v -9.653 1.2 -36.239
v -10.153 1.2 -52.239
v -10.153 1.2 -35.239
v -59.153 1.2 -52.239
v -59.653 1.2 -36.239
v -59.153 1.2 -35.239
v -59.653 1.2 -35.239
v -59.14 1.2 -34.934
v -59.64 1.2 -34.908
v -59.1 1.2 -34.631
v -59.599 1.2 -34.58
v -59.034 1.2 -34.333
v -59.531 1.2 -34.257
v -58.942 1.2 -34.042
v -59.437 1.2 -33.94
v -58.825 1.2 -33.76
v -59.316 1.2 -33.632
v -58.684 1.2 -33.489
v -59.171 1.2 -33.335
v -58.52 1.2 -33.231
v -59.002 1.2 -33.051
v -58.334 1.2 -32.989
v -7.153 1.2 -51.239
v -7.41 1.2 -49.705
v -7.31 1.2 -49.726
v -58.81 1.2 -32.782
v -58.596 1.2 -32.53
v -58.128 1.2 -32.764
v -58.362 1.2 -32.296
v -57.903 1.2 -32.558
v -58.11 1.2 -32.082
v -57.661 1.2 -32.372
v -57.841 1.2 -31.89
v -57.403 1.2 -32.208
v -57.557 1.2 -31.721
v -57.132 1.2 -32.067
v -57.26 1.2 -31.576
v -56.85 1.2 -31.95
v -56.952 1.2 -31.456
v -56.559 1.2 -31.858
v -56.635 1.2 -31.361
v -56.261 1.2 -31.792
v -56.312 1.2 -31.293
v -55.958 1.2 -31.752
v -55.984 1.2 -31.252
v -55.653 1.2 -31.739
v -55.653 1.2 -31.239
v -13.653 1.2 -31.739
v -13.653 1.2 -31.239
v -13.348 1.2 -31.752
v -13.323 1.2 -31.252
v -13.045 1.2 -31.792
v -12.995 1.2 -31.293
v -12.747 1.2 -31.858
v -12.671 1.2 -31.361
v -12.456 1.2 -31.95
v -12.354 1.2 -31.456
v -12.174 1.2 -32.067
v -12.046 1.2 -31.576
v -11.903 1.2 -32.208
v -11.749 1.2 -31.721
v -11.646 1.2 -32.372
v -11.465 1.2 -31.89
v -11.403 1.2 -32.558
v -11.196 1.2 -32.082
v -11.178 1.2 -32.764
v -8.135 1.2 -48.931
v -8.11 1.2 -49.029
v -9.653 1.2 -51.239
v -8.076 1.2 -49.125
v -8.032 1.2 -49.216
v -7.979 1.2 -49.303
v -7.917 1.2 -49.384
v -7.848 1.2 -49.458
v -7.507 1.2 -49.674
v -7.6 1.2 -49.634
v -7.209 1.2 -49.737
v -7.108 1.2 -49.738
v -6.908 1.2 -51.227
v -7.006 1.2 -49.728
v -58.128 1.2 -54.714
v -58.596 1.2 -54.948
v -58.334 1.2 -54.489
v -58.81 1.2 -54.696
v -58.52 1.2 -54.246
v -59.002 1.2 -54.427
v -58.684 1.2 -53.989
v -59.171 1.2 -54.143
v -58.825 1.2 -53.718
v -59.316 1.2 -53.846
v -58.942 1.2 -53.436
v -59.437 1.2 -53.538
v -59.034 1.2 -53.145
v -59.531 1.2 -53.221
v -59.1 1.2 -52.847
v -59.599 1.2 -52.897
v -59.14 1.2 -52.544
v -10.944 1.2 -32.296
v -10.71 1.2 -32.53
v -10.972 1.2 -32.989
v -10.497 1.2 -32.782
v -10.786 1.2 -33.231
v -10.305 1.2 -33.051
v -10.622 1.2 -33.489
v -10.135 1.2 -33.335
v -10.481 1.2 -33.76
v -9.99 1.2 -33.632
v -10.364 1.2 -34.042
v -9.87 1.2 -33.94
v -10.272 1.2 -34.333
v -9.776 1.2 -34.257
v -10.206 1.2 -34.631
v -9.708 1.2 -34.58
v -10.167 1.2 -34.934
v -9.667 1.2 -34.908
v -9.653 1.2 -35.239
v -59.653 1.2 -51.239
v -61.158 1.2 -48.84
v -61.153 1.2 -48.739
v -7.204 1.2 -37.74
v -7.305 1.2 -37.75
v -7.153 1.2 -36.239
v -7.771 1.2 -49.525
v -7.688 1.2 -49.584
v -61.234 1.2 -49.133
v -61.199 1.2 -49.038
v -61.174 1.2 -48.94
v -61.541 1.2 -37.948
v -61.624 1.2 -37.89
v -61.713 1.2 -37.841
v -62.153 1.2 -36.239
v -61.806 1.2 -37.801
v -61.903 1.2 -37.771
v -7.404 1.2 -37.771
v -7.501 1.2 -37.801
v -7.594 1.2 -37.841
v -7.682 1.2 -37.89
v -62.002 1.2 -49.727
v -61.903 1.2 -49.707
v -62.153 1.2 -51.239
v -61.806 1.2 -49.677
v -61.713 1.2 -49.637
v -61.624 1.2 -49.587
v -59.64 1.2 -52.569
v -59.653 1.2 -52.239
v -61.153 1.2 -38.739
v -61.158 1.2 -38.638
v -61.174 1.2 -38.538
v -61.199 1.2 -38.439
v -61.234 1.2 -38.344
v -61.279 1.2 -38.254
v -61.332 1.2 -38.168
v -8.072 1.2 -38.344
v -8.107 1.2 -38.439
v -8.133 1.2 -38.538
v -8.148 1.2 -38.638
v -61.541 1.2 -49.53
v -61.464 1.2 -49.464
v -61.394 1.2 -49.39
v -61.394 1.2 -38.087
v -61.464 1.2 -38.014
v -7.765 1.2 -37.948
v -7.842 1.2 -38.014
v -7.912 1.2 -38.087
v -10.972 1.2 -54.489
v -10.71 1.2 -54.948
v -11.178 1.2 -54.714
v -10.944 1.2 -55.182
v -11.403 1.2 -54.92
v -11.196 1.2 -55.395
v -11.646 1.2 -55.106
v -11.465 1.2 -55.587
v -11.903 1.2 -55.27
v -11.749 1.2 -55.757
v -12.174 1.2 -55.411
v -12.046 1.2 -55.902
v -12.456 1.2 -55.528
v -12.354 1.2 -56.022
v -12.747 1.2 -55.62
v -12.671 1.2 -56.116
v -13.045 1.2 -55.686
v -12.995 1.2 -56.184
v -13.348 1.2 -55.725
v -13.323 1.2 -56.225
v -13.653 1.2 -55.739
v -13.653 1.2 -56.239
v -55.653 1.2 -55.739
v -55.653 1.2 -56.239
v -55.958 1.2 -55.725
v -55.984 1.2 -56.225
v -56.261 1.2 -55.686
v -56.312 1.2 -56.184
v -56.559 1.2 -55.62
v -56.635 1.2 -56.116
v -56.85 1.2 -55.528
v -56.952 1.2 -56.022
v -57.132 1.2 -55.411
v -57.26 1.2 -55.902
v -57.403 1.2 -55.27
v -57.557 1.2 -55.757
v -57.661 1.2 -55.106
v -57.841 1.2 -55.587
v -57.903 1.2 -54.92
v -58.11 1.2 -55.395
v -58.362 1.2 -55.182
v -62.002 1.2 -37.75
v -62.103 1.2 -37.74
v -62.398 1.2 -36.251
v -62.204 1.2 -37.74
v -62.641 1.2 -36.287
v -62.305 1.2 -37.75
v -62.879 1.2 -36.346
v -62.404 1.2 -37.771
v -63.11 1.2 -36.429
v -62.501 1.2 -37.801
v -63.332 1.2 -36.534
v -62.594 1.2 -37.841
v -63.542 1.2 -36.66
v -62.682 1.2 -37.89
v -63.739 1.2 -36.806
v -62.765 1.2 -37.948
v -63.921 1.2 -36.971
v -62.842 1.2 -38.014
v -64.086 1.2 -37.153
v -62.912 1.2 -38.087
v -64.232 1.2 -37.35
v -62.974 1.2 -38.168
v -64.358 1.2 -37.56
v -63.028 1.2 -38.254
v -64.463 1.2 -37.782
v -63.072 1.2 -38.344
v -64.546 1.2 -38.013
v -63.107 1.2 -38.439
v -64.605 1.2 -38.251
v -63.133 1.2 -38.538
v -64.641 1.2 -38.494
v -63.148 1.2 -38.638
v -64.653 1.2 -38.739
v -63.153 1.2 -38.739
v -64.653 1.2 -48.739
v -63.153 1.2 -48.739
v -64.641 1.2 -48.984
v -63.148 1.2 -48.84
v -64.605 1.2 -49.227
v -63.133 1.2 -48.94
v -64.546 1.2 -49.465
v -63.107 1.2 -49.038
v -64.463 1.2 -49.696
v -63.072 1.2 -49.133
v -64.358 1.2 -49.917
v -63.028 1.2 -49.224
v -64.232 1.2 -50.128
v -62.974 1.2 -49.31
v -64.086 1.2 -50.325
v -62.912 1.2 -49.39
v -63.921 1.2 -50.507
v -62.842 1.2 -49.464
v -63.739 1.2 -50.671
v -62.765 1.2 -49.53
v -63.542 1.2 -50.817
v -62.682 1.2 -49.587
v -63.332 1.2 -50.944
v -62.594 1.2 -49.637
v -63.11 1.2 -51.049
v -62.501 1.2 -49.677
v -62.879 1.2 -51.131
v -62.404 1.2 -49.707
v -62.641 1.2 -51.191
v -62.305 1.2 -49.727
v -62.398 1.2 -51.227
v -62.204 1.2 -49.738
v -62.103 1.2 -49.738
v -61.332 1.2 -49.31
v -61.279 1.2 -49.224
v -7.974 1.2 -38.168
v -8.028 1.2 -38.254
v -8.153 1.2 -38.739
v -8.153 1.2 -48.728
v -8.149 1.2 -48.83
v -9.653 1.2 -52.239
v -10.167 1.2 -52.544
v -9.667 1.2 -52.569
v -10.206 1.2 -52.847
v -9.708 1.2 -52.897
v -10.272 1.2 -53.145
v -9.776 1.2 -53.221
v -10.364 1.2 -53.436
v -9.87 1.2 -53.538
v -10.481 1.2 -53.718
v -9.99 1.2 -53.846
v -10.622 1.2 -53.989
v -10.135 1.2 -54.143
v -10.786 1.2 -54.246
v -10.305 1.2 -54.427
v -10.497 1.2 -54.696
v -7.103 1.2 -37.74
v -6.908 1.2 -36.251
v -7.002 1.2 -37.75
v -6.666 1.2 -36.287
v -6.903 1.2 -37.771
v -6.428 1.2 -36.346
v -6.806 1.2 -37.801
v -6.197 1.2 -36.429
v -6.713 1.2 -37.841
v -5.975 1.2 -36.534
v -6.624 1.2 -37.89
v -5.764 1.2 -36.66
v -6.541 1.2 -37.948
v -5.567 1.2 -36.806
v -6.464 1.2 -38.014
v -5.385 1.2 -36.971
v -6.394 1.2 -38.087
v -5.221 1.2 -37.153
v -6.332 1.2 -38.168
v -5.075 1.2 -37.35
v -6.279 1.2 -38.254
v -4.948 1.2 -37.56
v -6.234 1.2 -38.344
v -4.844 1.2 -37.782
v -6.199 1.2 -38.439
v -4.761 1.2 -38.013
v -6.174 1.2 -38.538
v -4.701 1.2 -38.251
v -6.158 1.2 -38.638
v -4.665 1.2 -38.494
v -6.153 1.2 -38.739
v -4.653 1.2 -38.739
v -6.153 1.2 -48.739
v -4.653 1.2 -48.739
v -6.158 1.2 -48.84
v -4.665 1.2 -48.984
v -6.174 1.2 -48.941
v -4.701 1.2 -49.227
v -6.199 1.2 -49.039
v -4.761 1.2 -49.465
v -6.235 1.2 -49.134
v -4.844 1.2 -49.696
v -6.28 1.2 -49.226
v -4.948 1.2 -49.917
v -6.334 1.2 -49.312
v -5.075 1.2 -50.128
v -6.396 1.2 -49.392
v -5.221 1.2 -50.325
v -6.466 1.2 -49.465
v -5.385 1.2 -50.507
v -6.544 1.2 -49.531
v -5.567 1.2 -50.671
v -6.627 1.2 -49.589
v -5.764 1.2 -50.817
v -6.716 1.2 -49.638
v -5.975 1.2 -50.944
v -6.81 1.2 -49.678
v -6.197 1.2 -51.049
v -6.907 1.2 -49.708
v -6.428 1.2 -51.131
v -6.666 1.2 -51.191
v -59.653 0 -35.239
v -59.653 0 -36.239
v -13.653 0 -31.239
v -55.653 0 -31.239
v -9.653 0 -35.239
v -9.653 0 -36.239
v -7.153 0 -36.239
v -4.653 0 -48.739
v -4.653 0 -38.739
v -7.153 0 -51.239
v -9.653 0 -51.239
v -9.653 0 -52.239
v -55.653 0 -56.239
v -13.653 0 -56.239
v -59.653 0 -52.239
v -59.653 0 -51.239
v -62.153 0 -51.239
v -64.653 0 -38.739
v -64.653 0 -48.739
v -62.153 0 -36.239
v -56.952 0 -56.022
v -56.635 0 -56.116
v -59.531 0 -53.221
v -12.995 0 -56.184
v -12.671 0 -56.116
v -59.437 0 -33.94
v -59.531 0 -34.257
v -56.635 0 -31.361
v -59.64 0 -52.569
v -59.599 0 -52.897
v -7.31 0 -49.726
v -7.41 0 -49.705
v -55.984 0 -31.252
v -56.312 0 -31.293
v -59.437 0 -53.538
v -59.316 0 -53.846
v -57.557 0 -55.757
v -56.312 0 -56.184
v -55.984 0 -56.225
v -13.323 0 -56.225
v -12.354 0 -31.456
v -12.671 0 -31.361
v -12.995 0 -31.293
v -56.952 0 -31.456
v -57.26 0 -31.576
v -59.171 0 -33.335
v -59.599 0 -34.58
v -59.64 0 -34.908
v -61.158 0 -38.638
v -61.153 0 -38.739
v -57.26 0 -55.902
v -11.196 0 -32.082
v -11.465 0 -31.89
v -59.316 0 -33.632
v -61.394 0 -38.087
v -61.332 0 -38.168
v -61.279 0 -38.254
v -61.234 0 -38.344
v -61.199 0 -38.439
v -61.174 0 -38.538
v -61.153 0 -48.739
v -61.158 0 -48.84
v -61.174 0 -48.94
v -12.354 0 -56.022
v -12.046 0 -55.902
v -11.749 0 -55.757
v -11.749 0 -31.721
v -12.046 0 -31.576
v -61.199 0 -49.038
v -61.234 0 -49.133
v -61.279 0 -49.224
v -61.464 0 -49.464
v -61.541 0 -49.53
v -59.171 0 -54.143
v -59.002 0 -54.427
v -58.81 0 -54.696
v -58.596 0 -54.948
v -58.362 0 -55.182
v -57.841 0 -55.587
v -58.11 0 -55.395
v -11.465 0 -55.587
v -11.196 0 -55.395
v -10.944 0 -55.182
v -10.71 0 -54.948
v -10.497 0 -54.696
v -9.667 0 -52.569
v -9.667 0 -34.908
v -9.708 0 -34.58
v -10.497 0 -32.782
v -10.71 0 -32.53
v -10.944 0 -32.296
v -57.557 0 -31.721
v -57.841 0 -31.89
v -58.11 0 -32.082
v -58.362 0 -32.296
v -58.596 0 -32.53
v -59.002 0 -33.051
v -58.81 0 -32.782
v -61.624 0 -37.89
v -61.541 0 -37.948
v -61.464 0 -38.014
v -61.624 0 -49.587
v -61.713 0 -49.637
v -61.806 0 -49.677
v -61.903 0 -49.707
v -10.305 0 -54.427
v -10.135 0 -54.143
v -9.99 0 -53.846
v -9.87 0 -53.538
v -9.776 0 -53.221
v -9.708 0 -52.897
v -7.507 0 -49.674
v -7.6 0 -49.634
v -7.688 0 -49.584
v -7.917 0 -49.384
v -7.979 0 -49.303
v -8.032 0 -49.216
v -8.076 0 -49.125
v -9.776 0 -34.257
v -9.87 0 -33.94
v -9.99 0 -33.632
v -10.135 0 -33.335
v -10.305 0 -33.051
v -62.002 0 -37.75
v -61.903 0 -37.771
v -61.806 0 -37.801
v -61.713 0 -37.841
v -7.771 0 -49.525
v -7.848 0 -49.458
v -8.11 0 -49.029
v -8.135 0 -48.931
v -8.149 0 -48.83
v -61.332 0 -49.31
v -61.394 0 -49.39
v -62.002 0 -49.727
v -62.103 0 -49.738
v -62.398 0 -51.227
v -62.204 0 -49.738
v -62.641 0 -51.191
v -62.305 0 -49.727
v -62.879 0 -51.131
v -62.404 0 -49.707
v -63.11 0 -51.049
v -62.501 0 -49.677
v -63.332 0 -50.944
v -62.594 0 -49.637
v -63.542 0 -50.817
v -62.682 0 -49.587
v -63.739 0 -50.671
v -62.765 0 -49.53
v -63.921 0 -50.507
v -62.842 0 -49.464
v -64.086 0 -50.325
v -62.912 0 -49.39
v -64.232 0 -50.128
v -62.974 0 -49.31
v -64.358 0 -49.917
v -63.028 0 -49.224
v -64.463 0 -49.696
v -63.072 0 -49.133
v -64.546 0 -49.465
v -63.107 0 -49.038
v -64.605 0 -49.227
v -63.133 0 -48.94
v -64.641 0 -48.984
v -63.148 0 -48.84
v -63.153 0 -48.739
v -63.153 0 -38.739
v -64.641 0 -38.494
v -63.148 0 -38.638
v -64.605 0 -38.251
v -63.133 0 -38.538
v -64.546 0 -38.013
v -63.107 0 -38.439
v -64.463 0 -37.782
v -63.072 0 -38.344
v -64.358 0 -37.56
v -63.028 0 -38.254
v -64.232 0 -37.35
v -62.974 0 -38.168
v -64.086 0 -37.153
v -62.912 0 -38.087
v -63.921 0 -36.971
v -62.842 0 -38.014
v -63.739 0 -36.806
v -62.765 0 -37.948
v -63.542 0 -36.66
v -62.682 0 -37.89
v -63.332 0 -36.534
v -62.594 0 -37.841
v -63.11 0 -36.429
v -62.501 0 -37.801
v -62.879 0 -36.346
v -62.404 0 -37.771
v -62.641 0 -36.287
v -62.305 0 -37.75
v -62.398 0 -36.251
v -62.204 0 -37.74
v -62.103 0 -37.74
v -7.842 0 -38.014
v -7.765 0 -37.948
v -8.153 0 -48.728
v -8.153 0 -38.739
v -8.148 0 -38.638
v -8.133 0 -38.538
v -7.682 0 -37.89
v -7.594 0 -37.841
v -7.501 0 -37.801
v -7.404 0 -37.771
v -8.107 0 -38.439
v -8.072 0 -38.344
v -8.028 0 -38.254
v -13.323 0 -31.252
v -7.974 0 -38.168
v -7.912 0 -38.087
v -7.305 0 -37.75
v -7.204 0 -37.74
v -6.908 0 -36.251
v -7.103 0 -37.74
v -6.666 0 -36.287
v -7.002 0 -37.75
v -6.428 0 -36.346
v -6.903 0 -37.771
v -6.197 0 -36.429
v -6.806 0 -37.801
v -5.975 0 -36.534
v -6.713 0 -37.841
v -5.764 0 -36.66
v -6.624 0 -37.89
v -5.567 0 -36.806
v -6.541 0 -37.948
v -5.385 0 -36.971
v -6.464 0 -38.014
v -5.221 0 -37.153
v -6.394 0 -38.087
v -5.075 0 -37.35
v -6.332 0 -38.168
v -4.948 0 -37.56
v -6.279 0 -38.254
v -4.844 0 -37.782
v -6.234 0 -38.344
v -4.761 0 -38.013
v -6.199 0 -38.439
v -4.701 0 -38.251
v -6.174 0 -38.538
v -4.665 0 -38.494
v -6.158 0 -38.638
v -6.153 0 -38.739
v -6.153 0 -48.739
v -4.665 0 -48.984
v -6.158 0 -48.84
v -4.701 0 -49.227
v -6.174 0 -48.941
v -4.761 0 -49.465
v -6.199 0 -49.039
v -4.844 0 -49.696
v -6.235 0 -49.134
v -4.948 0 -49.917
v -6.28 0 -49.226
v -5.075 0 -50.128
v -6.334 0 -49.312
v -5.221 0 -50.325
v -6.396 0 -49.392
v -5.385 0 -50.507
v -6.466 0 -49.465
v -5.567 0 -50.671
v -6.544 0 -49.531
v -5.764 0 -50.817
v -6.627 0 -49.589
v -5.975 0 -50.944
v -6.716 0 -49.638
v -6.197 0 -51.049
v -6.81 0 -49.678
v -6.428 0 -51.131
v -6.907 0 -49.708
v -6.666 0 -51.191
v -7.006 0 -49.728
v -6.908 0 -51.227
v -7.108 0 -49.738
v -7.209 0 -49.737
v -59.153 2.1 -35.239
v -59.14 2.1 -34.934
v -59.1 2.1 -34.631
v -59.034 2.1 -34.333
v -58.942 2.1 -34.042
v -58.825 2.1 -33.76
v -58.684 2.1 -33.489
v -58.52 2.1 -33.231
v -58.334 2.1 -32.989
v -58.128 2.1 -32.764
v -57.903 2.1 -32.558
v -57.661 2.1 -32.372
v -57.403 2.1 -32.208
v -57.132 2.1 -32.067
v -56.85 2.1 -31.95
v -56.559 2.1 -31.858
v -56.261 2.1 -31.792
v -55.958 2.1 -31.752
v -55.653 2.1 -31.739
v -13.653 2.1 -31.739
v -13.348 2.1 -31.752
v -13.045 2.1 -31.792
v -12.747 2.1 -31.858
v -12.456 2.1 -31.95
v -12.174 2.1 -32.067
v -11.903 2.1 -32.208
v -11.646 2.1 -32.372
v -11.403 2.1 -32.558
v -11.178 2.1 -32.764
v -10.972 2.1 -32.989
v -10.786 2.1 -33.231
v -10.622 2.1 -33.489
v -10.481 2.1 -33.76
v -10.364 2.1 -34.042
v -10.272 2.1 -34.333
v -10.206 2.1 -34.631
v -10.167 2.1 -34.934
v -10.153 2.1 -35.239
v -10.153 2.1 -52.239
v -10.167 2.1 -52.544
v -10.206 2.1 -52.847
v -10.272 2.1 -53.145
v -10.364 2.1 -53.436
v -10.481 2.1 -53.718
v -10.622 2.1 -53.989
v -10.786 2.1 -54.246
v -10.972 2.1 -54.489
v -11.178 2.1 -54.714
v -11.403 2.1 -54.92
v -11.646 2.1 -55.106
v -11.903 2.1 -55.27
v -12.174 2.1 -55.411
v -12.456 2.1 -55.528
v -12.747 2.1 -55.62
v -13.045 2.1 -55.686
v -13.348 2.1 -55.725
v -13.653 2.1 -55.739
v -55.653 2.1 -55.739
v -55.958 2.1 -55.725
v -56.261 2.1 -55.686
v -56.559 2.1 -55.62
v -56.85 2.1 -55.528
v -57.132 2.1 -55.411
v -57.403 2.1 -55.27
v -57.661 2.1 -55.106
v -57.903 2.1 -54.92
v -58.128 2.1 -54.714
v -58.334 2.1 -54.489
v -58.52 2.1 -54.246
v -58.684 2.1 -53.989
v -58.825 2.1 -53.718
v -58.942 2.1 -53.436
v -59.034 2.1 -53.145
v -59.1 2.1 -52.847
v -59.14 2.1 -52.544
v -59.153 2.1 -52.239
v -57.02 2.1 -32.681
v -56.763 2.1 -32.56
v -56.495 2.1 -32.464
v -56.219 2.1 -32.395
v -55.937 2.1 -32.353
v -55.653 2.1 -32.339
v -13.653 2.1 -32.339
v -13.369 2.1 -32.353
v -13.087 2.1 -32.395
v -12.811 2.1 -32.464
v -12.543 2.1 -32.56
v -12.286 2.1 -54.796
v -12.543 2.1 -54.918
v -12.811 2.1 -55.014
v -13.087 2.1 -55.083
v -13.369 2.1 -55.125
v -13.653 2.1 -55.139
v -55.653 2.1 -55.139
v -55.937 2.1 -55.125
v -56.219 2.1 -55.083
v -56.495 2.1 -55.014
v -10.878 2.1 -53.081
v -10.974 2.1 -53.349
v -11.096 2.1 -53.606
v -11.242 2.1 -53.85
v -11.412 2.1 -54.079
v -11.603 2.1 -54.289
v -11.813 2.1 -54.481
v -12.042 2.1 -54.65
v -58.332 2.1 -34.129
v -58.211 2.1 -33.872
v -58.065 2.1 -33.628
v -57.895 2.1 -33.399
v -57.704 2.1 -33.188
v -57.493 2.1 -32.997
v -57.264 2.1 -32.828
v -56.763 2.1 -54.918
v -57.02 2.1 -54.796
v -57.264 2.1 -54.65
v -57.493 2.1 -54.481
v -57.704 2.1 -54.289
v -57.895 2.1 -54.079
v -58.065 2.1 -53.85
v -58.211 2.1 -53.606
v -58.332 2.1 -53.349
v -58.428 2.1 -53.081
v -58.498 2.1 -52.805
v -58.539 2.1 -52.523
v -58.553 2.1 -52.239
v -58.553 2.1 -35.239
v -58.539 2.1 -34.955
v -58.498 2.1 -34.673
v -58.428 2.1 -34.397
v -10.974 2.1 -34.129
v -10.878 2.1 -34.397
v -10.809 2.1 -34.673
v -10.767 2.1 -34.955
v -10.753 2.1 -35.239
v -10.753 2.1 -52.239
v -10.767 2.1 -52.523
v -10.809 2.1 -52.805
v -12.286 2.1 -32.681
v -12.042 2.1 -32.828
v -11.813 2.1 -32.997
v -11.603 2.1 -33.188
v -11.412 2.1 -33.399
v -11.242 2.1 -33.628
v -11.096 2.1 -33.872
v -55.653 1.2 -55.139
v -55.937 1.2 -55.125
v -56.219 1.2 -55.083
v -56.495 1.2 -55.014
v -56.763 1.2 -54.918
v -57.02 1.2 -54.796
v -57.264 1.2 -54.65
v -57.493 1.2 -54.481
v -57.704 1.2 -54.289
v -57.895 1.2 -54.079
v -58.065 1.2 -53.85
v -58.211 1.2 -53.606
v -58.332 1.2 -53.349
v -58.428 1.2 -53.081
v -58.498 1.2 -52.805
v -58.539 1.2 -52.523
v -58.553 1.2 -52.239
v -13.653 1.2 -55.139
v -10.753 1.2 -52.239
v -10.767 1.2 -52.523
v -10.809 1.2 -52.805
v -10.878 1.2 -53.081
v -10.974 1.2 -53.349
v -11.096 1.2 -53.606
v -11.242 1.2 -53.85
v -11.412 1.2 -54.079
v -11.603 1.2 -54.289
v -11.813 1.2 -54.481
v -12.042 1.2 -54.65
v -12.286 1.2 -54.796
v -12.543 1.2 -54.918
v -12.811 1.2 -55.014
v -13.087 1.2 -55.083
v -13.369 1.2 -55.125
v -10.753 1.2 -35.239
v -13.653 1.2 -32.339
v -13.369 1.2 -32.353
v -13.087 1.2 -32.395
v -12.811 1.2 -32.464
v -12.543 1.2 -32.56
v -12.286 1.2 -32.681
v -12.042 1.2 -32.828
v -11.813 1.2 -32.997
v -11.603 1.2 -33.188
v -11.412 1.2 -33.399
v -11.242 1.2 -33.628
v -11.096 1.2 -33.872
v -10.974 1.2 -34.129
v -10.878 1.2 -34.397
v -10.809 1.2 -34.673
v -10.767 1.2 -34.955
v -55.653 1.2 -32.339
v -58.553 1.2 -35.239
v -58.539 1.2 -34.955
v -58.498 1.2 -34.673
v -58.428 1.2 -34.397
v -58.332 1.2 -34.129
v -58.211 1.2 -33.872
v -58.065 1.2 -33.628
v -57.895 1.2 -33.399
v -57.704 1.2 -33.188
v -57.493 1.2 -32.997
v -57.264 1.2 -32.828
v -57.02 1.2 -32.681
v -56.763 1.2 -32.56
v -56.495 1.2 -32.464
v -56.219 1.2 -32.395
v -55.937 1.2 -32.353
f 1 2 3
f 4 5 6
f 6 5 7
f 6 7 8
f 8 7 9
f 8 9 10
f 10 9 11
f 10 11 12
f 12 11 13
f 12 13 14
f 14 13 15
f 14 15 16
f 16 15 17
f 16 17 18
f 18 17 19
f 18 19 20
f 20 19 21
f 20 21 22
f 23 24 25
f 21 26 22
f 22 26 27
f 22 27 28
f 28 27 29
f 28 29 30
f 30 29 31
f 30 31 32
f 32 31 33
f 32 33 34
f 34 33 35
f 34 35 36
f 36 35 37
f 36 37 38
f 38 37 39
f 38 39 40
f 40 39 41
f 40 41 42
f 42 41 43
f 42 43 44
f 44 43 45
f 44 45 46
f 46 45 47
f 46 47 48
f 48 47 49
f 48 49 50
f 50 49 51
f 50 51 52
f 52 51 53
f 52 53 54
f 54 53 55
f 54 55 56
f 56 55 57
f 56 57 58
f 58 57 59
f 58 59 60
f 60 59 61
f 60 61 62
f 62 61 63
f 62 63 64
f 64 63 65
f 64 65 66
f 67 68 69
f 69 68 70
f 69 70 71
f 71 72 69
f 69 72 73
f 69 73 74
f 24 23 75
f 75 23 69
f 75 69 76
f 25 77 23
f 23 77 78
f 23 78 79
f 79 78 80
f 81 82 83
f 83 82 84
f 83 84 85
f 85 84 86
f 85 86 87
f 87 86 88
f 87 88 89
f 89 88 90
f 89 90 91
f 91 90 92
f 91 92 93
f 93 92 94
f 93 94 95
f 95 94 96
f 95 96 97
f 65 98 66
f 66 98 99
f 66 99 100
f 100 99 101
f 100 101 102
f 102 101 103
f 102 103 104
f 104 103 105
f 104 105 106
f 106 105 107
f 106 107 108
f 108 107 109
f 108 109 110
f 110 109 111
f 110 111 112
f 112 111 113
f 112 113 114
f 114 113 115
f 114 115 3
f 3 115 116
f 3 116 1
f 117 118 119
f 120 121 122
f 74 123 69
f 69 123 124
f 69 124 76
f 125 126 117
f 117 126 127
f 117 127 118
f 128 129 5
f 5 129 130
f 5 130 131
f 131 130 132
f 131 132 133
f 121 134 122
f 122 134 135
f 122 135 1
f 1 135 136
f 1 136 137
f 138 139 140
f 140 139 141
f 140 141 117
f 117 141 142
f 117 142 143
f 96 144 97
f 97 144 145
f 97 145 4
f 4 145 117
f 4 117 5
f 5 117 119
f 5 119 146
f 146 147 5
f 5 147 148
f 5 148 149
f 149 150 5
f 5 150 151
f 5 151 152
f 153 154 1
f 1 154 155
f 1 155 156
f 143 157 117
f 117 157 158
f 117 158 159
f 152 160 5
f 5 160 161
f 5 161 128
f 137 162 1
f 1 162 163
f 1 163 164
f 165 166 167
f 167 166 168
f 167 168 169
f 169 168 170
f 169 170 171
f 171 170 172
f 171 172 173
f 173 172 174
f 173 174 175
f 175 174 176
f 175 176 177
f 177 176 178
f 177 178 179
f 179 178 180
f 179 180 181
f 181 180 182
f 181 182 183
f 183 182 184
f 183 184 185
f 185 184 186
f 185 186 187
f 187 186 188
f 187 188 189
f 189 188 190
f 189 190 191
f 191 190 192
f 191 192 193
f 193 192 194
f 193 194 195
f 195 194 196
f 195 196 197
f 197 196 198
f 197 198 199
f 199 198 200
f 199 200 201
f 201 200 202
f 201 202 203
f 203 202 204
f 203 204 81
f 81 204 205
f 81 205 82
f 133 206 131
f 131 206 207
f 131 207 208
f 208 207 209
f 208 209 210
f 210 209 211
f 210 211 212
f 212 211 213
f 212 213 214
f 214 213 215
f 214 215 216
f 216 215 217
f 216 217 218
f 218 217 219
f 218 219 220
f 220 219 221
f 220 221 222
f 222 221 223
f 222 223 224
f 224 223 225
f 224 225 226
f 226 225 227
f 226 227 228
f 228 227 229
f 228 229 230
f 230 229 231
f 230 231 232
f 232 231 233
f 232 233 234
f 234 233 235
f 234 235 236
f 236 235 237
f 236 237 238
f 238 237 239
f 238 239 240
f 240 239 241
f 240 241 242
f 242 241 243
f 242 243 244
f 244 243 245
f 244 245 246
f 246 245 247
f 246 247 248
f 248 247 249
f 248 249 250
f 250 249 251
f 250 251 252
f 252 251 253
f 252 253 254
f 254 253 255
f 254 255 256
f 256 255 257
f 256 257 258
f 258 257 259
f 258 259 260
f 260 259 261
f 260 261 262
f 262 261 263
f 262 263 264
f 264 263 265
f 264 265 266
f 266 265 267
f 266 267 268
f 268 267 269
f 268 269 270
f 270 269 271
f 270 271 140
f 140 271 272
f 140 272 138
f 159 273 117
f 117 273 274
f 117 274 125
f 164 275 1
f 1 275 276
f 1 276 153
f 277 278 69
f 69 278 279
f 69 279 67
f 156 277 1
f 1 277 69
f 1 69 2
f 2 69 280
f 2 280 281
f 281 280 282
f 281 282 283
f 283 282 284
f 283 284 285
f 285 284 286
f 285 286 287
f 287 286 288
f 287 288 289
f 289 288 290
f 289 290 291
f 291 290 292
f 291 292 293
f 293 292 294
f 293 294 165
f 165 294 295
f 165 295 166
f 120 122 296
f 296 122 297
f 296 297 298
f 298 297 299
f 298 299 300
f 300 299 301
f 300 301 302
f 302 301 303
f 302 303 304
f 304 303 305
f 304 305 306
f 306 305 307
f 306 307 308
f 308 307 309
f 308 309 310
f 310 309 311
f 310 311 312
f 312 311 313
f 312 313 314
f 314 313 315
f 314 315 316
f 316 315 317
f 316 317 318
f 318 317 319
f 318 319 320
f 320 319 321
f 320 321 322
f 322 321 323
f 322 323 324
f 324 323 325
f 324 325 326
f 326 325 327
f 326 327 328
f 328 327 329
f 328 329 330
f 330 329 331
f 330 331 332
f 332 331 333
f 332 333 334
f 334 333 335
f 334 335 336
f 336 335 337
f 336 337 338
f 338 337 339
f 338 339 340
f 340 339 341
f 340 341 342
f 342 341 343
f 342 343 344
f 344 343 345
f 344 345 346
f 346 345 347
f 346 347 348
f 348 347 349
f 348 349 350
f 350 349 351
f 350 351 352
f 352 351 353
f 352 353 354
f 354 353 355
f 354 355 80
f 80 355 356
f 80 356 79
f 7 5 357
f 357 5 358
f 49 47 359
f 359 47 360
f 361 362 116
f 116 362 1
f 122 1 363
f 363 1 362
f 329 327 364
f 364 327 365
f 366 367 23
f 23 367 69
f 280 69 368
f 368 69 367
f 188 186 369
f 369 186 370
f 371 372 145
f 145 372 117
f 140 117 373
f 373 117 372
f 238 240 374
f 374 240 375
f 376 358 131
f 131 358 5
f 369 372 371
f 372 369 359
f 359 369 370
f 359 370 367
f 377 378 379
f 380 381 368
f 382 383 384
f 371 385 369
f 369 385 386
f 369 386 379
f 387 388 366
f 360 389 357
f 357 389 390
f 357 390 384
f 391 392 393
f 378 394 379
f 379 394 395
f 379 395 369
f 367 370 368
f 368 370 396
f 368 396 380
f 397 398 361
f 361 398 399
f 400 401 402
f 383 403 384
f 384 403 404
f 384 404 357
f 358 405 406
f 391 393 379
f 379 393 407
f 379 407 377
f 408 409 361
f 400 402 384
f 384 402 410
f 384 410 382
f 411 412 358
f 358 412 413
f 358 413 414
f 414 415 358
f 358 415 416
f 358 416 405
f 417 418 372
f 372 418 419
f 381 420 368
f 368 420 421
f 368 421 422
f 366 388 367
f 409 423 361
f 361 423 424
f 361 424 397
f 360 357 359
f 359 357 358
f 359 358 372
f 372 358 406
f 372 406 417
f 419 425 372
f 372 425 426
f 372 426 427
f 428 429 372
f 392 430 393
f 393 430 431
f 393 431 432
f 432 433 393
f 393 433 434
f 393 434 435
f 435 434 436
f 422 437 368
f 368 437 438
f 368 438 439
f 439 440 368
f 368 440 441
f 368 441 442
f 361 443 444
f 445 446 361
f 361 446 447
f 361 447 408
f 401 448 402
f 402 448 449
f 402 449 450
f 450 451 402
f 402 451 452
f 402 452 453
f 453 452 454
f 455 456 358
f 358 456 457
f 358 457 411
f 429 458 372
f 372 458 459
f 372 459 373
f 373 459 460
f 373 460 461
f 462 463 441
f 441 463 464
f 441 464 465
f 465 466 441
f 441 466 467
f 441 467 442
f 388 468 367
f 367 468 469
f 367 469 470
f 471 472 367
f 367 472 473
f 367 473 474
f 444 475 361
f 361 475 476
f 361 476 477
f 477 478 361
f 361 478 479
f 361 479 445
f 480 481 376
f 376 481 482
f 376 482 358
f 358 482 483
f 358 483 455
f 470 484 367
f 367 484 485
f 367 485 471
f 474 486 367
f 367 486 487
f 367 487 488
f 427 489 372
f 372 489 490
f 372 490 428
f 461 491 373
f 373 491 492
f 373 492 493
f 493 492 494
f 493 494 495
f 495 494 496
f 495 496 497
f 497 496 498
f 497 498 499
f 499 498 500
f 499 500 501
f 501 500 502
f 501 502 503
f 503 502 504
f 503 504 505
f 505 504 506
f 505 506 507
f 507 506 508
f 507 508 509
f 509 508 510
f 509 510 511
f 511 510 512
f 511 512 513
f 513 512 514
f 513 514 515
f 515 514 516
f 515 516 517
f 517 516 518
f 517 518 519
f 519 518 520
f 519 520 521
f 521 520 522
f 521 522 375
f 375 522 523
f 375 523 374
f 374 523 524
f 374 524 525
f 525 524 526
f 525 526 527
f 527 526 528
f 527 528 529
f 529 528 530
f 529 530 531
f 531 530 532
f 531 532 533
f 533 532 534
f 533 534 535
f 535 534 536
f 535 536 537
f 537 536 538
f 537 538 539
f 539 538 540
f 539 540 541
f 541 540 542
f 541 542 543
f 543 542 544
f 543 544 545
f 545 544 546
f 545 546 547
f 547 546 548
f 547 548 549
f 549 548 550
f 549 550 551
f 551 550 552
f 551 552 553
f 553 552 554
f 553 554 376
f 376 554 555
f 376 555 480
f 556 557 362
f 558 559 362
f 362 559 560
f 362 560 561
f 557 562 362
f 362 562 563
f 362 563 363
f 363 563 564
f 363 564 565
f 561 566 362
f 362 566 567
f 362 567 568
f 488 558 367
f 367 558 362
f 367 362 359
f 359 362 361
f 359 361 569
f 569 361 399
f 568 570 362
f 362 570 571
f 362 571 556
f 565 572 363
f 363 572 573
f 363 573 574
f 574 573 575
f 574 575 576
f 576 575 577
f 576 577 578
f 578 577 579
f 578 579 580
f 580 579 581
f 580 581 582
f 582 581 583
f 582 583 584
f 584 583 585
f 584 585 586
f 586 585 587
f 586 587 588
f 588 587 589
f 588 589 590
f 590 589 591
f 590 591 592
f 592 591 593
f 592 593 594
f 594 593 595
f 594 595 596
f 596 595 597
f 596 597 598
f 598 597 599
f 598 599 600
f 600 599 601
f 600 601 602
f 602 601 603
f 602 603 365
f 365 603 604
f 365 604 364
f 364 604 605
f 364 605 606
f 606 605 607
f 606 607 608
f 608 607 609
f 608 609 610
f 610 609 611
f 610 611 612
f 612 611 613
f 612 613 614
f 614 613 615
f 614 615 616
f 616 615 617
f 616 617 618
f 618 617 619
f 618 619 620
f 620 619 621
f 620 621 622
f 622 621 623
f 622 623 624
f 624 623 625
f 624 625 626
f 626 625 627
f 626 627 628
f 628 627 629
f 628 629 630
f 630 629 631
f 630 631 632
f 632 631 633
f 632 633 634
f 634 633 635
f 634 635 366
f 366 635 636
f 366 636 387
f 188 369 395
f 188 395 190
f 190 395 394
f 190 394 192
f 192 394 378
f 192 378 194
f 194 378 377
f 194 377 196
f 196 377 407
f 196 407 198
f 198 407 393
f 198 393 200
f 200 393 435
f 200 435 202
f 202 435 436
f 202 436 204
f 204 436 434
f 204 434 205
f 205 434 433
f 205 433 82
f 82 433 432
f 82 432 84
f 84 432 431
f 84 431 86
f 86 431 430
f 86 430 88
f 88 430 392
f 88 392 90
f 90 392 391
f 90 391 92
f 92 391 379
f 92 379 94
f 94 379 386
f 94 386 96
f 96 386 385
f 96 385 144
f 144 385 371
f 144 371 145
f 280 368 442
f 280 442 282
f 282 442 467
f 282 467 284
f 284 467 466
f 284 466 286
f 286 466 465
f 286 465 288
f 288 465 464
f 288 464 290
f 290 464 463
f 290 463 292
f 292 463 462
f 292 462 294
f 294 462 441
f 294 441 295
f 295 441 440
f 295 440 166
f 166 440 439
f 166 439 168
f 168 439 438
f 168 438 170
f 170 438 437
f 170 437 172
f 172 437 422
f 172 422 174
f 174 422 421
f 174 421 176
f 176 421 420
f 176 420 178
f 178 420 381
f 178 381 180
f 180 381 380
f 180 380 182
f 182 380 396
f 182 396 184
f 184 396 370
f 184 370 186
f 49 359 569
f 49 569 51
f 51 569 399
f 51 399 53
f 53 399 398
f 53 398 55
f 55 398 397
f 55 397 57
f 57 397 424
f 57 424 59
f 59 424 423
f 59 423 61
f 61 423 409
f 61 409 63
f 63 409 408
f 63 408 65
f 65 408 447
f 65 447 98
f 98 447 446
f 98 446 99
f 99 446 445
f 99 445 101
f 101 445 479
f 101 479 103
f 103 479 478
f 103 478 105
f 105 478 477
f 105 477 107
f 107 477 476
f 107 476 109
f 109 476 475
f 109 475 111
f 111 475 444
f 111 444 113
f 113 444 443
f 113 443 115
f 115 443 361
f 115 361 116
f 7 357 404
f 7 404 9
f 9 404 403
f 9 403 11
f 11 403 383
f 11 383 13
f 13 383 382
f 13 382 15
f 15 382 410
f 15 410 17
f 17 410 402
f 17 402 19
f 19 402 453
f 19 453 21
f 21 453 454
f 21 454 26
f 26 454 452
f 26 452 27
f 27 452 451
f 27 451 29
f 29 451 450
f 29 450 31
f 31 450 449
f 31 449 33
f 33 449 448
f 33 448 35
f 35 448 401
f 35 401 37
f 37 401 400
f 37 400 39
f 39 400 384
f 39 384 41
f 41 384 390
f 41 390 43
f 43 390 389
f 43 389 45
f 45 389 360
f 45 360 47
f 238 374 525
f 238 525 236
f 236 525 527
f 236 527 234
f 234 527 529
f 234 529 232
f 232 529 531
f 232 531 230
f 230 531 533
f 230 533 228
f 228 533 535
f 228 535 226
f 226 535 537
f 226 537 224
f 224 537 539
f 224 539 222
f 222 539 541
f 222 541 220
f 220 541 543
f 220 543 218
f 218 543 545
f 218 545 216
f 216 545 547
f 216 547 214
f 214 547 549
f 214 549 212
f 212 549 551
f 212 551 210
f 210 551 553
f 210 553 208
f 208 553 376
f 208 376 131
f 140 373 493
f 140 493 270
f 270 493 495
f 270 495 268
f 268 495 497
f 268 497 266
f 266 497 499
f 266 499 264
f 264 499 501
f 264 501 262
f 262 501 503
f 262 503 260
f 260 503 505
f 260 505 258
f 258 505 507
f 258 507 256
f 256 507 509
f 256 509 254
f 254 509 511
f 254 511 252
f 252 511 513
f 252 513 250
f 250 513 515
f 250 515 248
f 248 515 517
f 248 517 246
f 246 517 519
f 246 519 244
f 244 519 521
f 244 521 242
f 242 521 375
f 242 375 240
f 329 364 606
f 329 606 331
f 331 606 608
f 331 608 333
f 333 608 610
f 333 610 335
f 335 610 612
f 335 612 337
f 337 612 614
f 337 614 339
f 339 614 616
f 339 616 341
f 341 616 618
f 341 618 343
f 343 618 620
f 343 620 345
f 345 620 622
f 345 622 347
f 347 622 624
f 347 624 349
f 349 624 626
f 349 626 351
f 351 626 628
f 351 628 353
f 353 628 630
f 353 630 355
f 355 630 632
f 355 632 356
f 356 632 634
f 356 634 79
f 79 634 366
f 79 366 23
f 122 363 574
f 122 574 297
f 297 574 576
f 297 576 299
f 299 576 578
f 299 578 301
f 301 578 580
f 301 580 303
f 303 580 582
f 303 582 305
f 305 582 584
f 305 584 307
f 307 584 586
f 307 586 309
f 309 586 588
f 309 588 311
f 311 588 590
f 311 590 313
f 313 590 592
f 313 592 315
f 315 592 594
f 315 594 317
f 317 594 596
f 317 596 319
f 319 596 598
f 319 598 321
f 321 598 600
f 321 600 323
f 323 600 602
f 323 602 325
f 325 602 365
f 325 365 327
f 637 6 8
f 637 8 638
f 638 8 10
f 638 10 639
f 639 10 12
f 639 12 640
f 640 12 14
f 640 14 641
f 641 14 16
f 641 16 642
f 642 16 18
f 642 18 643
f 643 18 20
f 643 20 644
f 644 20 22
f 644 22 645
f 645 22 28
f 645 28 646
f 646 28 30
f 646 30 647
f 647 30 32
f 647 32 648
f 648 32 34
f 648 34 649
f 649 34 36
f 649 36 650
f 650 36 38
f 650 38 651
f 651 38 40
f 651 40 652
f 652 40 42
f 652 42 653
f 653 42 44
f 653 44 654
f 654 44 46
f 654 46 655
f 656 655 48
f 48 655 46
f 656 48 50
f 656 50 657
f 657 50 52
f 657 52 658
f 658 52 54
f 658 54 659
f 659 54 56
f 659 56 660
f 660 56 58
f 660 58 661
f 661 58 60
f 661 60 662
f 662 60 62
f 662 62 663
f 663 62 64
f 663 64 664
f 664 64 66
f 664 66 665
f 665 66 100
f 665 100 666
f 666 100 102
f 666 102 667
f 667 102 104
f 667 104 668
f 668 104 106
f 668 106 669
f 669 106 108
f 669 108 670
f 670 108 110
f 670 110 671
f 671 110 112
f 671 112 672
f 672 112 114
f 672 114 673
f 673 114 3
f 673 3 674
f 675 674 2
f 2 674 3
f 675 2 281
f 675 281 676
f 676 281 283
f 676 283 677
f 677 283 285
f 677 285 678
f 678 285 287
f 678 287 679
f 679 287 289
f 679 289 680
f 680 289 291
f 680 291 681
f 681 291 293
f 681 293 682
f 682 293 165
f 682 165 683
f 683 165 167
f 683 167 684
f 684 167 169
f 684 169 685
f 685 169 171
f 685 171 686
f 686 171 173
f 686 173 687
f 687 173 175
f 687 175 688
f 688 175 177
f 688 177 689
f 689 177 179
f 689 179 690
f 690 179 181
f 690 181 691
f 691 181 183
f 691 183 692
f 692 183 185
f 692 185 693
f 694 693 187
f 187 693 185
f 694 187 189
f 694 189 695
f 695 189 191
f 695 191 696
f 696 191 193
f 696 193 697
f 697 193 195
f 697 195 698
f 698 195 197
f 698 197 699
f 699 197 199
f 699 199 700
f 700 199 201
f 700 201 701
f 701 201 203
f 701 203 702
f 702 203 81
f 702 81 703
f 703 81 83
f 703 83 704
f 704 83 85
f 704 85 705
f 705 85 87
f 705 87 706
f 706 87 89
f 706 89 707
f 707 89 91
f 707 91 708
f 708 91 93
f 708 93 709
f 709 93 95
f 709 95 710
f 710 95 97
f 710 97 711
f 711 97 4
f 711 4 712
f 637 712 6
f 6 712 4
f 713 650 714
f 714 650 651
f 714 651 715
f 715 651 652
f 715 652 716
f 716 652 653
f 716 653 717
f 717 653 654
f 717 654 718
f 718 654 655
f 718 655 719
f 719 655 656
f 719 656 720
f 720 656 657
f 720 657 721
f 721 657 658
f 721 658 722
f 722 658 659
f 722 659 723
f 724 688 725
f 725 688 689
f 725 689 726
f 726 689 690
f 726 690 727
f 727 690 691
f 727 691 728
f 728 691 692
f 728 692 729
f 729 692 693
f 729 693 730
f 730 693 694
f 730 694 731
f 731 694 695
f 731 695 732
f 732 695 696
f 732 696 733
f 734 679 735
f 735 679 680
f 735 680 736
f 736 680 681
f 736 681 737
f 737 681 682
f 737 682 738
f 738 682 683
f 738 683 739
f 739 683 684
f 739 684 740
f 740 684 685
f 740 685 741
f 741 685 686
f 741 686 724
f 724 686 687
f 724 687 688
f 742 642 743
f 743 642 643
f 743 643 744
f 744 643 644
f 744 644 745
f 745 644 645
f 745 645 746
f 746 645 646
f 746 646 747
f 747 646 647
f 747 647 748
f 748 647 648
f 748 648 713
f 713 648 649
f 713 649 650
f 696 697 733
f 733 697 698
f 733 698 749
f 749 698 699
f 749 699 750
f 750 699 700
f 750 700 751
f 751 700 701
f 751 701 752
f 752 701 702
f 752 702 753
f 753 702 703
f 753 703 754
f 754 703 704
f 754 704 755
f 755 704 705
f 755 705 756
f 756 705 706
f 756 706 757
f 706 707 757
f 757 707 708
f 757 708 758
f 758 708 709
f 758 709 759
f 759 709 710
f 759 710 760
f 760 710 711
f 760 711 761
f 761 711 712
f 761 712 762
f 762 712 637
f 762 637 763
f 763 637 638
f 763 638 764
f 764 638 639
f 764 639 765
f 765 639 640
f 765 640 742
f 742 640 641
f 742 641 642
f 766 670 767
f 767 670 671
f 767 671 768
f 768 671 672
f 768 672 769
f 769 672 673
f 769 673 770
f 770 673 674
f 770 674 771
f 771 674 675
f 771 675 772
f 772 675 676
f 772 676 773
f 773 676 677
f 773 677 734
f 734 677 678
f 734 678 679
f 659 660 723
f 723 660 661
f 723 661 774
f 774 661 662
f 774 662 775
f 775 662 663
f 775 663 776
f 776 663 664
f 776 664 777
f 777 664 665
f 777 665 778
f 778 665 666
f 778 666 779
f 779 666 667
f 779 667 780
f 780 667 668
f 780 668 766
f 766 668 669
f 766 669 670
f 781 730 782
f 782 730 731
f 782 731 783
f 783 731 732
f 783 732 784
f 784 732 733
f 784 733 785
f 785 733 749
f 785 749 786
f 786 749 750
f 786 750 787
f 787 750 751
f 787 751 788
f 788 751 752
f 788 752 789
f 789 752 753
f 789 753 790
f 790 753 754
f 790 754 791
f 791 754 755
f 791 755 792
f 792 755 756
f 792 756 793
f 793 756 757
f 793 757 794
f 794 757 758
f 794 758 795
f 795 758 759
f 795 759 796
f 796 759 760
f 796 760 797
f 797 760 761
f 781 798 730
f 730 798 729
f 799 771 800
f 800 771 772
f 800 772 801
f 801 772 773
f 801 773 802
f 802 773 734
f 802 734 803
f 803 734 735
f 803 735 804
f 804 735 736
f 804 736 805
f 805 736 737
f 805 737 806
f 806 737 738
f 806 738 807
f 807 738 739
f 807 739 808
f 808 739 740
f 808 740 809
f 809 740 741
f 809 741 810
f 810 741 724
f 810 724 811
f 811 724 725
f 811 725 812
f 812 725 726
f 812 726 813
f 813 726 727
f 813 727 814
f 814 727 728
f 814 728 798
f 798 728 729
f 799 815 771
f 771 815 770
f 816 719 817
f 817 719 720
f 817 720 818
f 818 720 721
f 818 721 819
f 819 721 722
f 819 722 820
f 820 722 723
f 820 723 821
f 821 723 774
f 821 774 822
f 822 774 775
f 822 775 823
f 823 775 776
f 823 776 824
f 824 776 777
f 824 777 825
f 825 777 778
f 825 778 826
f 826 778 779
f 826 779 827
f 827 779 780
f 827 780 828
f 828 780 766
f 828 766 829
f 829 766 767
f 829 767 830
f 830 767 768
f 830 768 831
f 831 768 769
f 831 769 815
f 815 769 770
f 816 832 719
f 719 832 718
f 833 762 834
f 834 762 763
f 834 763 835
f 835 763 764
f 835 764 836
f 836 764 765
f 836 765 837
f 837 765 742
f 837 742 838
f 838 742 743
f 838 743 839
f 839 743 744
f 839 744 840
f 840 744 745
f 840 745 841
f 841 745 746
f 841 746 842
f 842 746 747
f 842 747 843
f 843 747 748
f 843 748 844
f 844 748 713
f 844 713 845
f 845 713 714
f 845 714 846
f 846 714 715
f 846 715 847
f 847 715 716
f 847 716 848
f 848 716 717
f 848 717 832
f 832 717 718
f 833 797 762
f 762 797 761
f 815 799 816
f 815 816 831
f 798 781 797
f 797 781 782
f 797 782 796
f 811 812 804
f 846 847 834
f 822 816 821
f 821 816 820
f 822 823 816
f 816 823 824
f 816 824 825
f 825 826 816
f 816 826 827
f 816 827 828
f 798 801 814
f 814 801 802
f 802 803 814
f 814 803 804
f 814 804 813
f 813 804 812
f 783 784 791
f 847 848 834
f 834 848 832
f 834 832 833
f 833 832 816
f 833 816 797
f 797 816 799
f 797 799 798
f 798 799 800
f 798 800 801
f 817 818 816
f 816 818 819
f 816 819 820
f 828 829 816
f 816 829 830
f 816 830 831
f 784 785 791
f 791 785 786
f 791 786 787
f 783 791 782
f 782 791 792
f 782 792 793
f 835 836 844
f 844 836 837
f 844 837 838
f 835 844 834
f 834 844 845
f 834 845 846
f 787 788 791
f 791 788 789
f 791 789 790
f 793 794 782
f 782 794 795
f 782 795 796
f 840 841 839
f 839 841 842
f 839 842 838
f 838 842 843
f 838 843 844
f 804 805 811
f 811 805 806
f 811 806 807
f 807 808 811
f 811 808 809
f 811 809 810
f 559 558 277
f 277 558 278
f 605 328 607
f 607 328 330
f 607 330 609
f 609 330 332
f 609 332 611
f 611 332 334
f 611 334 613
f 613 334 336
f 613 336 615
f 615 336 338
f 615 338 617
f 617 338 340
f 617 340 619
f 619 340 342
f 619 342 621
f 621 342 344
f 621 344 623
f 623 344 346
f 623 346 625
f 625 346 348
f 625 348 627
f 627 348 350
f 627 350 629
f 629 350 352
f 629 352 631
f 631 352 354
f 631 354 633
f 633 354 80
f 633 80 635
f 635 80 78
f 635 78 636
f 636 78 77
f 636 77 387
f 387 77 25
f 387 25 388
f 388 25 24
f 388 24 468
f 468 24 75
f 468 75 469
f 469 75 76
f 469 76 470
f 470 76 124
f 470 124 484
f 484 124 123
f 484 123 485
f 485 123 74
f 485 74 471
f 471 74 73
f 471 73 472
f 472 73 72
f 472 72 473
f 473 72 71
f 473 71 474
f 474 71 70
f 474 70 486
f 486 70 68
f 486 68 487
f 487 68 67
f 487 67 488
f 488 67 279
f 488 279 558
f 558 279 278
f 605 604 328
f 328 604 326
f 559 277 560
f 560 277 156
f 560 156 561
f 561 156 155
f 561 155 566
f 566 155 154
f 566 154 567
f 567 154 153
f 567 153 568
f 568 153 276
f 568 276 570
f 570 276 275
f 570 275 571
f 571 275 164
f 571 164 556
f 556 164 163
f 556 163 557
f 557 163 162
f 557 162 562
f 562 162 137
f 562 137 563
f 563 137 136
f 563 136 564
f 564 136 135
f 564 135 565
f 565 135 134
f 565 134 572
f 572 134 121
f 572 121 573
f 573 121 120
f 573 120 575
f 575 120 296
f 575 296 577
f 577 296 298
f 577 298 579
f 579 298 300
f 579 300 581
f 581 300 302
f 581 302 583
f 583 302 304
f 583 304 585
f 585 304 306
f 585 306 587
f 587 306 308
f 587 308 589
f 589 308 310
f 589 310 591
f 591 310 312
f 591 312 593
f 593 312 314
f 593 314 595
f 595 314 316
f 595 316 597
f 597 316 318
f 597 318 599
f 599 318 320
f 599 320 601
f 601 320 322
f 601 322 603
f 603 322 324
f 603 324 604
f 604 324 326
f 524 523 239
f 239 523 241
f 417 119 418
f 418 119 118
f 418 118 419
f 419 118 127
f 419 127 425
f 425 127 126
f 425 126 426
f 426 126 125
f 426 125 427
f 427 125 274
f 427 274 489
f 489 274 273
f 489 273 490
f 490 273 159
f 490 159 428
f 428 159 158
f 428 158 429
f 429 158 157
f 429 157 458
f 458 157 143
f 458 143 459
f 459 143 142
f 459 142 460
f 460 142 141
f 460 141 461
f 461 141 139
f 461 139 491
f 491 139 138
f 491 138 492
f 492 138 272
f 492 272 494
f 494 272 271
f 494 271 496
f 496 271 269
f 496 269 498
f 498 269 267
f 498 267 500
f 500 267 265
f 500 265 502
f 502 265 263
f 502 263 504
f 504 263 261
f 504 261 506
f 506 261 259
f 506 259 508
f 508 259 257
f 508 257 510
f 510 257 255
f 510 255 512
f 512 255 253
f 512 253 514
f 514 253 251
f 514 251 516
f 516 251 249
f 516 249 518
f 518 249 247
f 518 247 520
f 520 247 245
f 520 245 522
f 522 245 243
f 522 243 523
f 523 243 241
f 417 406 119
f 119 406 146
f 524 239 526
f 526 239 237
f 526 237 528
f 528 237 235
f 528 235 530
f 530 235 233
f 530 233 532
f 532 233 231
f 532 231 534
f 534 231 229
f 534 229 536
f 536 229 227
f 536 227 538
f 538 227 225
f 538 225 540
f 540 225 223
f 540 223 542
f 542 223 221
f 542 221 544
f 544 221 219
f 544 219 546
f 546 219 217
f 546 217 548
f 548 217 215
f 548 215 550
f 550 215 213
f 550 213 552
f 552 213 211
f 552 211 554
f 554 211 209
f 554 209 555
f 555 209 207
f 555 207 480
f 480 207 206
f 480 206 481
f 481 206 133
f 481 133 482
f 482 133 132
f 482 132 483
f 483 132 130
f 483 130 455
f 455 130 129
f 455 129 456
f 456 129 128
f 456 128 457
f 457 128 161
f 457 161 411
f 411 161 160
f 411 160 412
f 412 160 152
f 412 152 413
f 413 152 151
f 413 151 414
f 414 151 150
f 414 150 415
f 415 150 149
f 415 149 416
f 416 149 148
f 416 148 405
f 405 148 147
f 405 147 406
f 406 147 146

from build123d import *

# Parameters (mm, degrees)
BOSS_EXTRUDE1_DEPTH = 1.2
FILLET1_R           = 4
FILLET2_R           = 2.5
BOSS_EXTRUDE2_DEPTH = 0.9
CUT_EXTRUDE1_DEPTH  = 0.9
CUT_EXTRUDE2_DEPTH  = 86.698804049


with BuildPart() as part:
    # Sketch1 → Boss-Extrude1 (new body)
    with BuildSketch(Plane(origin=(0, 0, 0), x_dir=(1, 0, 0), z_dir=(0, 1, 0))):
        Polygon((-59.653240417, 31.238807945), (-9.653240417, 31.238807945), (-9.653240417, 36.238807945), (-4.653240417, 36.238807945), (-4.653240417, 51.238807945), (-9.653240417, 51.238807945), (-9.653240417, 56.238807945), (-59.653240417, 56.238807945), (-59.653240417, 51.238807945), (-64.653240417, 51.238807945), (-64.653240417, 36.238807945), (-59.653240417, 36.238807945), align=None)
    extrude(amount=BOSS_EXTRUDE1_DEPTH)

    # Fillet1
    fillet1_edges = [part.edges().sort_by_distance(p)[0] for p in [
        (-59.653240417, 0.6, -56.238807945),
        (-9.653240417, 0.6, -56.238807945),
        (-9.653240417, 0.6, -31.238807945),
        (-59.653240417, 0.6, -31.238807945),
    ]]
    fillet(fillet1_edges, radius=FILLET1_R)

    # Fillet2
    fillet2_edges = [part.edges().sort_by_distance(p)[0] for p in [
        (-64.653240417, 0.6, -36.238807945),
        (-64.653240417, 0.6, -51.238807945),
        (-4.653240417, 0.6, -51.238807945),
        (-4.653240417, 0.6, -36.238807945),
    ]]
    fillet(fillet2_edges, radius=FILLET2_R)

    # Sketch4 → Boss-Extrude2 (add)
    with BuildSketch(Plane(origin=(0, 1.2, 0), x_dir=(1, 0, 0), z_dir=(0, 1, 0))):
        with BuildLine():
            Line((-59.153240417, 50.738807945), (-59.153240417, 36.738807945))
            Line((-59.153240417, 36.738807945), (-59.153240417, 35.238807945))
            ThreePointArc((-59.153240417, 35.238807945), (-58.128114151, 32.763934211), (-55.653240417, 31.738807945))
            Line((-55.653240417, 31.738807945), (-13.653240417, 31.738807945))
            ThreePointArc((-13.653240417, 31.738807945), (-11.178366683, 32.763934211), (-10.153240417, 35.238807945))
            Line((-10.153240417, 35.238807945), (-10.153240417, 36.738807945))
            Line((-10.153240417, 36.738807945), (-10.153240417, 50.738807945))
            Line((-10.153240417, 50.738807945), (-10.153240417, 52.238807945))
            ThreePointArc((-10.153240417, 52.238807945), (-11.178366683, 54.713681679), (-13.653240417, 55.738807945))
            Line((-13.653240417, 55.738807945), (-55.653240417, 55.738807945))
            ThreePointArc((-55.653240417, 55.738807945), (-58.128114151, 54.713681679), (-59.153240417, 52.238807945))
            Line((-59.153240417, 52.238807945), (-59.153240417, 50.738807945))
        make_face()
    extrude(amount=BOSS_EXTRUDE2_DEPTH)

    # Sketch5 → Cut-Extrude1 (cut)
    with BuildSketch(Plane(origin=(0, 2.1, 0), x_dir=(1, 0, 0), z_dir=(0, 1, 0))):
        with BuildLine():
            Line((-58.553240417, 52.238807945), (-58.553240417, 35.238807945))
            ThreePointArc((-58.553240417, 35.238807945), (-57.703850082, 33.18819828), (-55.653240417, 32.338807945))
            Line((-55.653240417, 32.338807945), (-13.653240417, 32.338807945))
            ThreePointArc((-13.653240417, 32.338807945), (-11.602630751, 33.18819828), (-10.753240417, 35.238807945))
            Line((-10.753240417, 35.238807945), (-10.753240417, 52.238807945))
            ThreePointArc((-10.753240417, 52.238807945), (-11.602630751, 54.289417611), (-13.653240417, 55.138807945))
            Line((-13.653240417, 55.138807945), (-55.653240417, 55.138807945))
            ThreePointArc((-55.653240417, 55.138807945), (-57.703850082, 54.289417611), (-58.553240417, 52.238807945))
        make_face()
    extrude(amount=-CUT_EXTRUDE1_DEPTH, mode=Mode.SUBTRACT)

    # Sketch6 → Cut-Extrude2 (cut, through all)
    with BuildSketch(Plane(origin=(0, 1.2, 0), x_dir=(1, 0, 0), z_dir=(0, 1, 0))):
        with BuildLine():
            Line((-63.153240417, 48.738807945), (-63.153240417, 38.738807945))
            ThreePointArc((-63.153240417, 38.738807945), (-62.153240417, 37.738807945), (-61.153240417, 38.738807945))
            Line((-61.153240417, 38.738807945), (-61.153240417, 48.738807945))
            ThreePointArc((-61.153240417, 48.738807945), (-62.153240417, 49.738807945), (-63.153240417, 48.738807945))
        make_face()
        with BuildLine():
            Line((-8.153185775, 48.728354232), (-8.153240417, 38.738807945))
            ThreePointArc((-8.153240417, 38.738807945), (-7.153245887, 37.738807945), (-6.153240417, 38.738807945))
            Line((-6.153240417, 38.738807945), (-6.153240417, 48.738807945))
            ThreePointArc((-6.153240417, 48.738807945), (-7.158467345, 49.738794285), (-8.153185775, 48.728354232))
        make_face()
    extrude(amount=-CUT_EXTRUDE2_DEPTH, mode=Mode.SUBTRACT)


solid = part.part
